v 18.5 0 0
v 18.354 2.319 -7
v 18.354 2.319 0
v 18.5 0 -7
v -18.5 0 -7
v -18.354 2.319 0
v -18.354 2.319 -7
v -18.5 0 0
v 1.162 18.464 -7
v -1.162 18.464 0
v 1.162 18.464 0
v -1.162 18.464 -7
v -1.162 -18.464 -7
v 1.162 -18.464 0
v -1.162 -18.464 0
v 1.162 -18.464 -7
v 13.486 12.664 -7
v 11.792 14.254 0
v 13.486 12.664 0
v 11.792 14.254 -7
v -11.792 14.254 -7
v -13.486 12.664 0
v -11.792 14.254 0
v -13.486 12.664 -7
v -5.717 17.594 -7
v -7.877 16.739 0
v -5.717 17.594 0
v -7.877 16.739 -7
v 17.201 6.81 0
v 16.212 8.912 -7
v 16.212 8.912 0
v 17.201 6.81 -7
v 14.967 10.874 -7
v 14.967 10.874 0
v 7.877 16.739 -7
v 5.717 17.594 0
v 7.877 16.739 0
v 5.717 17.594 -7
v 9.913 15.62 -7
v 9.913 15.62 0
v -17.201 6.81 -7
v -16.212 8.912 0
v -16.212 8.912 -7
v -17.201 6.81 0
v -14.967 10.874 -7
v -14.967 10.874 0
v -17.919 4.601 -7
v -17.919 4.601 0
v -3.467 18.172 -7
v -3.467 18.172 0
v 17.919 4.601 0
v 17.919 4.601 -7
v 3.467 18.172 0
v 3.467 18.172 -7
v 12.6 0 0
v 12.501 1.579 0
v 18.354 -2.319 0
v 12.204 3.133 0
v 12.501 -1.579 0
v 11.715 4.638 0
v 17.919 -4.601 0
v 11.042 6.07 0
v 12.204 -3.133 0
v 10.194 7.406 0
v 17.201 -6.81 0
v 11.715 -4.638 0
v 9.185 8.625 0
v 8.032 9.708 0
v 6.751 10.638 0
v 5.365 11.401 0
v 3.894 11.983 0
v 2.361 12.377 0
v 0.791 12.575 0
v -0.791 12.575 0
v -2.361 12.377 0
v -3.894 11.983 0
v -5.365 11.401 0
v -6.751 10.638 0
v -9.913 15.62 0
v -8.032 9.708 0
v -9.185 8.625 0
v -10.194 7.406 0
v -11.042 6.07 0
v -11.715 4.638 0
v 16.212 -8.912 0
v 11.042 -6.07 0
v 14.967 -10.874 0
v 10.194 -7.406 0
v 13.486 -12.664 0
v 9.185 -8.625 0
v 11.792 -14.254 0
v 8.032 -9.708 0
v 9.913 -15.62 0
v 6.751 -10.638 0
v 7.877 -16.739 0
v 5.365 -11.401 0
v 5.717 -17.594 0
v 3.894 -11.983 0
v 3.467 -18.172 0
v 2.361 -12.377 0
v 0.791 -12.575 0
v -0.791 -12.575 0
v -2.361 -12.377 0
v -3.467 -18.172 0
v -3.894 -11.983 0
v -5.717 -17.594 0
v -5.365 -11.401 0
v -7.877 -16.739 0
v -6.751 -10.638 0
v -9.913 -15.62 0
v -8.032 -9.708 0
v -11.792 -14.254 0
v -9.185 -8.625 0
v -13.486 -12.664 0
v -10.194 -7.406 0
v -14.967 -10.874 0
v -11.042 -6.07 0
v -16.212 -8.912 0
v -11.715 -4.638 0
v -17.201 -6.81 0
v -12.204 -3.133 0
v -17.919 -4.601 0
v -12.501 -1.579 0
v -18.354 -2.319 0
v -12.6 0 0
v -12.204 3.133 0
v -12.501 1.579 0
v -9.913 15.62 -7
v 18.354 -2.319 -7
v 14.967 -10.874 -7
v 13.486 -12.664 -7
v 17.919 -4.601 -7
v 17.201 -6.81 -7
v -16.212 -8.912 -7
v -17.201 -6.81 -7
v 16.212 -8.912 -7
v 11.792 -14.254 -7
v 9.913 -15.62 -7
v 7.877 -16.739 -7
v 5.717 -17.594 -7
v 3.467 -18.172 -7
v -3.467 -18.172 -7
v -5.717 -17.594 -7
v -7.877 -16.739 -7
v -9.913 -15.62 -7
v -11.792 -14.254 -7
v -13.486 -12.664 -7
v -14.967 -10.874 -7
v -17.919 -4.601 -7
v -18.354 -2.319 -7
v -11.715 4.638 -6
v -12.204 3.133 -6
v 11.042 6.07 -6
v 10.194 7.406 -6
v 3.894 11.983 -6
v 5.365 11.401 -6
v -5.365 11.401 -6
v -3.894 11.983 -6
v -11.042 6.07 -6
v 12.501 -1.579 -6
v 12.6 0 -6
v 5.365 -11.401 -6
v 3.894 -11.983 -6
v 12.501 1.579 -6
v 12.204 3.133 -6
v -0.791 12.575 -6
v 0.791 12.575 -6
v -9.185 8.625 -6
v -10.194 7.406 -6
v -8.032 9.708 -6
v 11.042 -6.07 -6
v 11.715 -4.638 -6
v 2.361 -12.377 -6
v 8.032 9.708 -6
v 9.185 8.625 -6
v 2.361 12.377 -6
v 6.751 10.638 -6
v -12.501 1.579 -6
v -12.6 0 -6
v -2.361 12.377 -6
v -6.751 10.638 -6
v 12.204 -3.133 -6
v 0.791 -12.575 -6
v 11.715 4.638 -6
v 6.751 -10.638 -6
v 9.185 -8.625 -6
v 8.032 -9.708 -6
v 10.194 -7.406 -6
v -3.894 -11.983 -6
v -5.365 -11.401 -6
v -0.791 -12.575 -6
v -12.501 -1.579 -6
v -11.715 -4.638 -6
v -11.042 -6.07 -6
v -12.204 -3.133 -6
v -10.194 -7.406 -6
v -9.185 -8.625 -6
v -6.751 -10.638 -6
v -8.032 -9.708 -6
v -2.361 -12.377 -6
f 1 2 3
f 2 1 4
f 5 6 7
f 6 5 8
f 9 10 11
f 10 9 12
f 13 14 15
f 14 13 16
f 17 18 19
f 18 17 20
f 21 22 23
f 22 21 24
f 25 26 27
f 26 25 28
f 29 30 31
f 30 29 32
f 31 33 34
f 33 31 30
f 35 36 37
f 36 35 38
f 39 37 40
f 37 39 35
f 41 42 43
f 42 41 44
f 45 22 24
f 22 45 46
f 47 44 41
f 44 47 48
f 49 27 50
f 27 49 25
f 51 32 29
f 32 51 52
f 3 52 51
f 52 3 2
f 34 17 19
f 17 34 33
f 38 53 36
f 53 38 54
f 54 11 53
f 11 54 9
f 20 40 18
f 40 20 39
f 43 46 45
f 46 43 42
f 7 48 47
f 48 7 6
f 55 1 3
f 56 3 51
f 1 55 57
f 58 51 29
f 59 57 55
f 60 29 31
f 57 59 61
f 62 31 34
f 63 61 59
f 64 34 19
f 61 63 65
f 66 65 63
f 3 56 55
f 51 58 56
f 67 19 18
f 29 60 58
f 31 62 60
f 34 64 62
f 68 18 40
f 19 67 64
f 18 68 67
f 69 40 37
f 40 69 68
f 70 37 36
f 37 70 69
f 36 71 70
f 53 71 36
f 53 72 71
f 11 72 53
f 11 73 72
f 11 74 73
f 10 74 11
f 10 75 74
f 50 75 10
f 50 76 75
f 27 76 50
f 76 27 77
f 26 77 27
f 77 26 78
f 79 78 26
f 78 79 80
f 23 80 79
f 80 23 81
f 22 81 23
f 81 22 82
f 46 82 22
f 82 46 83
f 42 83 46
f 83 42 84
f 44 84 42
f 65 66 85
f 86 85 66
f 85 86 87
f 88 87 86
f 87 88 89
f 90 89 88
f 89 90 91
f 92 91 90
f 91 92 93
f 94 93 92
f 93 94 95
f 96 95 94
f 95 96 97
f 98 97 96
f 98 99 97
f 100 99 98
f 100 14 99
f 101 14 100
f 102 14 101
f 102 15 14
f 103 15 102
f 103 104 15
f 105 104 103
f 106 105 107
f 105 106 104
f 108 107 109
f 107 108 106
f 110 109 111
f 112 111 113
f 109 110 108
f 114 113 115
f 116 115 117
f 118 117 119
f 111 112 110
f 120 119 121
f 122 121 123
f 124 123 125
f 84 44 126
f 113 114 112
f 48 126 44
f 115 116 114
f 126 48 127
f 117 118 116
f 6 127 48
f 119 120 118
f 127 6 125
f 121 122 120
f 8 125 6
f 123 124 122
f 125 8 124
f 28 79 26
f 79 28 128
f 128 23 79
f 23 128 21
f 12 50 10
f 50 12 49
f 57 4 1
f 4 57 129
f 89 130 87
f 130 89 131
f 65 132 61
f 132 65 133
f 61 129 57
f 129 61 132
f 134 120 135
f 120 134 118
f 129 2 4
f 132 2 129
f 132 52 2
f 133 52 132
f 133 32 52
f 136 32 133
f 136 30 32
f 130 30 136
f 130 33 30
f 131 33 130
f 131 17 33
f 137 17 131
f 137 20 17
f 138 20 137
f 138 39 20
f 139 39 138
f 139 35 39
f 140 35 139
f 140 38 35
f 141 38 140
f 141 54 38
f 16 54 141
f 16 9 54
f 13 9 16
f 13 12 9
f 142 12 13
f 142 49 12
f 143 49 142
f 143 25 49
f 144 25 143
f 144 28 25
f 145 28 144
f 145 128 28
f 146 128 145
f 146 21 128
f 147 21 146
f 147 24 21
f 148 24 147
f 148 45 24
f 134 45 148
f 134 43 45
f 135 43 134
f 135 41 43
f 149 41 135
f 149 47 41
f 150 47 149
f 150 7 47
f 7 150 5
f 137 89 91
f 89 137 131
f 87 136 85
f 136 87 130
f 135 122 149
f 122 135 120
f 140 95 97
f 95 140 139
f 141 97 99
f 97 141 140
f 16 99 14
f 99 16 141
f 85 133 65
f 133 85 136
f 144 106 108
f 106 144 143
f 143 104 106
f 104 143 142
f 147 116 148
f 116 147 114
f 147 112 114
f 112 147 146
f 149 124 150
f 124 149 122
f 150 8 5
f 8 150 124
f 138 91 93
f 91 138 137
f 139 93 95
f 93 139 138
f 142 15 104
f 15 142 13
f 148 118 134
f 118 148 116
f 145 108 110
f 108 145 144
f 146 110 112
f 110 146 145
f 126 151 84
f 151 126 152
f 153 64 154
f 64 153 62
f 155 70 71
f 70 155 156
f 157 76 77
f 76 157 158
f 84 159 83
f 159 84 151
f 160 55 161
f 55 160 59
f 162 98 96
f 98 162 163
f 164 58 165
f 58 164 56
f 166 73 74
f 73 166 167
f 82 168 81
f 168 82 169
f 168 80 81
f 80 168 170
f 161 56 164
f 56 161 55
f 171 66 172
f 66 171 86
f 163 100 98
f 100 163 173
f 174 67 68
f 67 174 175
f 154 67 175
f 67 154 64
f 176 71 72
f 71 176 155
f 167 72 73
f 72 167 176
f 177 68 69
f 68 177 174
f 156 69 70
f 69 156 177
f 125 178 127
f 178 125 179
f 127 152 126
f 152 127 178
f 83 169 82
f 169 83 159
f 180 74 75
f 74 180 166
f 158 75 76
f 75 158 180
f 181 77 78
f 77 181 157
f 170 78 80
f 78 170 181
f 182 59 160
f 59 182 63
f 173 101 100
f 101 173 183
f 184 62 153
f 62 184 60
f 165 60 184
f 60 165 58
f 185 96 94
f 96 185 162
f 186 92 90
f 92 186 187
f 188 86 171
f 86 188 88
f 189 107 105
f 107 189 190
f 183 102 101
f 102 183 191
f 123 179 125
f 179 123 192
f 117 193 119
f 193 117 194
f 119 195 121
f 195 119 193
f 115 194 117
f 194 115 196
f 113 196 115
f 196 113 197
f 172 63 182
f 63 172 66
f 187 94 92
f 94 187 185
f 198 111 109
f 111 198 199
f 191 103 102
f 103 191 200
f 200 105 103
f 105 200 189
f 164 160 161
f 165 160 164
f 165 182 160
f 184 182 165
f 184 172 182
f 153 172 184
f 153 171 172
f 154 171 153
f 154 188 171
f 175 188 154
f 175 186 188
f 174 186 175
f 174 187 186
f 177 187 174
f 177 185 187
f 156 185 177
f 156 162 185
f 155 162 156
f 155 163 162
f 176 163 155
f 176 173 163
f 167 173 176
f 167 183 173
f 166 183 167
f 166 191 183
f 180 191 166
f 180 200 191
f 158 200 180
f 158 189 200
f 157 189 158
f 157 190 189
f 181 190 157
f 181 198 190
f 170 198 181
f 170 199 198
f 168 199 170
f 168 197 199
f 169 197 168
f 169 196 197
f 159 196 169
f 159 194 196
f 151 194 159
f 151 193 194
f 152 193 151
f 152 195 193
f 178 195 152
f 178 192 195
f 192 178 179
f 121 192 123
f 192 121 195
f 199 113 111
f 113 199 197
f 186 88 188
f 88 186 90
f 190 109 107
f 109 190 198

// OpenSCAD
$fn = 50;


difference() {
	union() {
		translate(v = [0, 0, -7.0000000000]) {
			cylinder(h = 7, r = 18.5000000000);
		}
	}
	union() {
		#translate(v = [0, 0, -6.0000000000]) {
			cylinder(h = 6, r = 12.6000000000);
		}
	}
}
